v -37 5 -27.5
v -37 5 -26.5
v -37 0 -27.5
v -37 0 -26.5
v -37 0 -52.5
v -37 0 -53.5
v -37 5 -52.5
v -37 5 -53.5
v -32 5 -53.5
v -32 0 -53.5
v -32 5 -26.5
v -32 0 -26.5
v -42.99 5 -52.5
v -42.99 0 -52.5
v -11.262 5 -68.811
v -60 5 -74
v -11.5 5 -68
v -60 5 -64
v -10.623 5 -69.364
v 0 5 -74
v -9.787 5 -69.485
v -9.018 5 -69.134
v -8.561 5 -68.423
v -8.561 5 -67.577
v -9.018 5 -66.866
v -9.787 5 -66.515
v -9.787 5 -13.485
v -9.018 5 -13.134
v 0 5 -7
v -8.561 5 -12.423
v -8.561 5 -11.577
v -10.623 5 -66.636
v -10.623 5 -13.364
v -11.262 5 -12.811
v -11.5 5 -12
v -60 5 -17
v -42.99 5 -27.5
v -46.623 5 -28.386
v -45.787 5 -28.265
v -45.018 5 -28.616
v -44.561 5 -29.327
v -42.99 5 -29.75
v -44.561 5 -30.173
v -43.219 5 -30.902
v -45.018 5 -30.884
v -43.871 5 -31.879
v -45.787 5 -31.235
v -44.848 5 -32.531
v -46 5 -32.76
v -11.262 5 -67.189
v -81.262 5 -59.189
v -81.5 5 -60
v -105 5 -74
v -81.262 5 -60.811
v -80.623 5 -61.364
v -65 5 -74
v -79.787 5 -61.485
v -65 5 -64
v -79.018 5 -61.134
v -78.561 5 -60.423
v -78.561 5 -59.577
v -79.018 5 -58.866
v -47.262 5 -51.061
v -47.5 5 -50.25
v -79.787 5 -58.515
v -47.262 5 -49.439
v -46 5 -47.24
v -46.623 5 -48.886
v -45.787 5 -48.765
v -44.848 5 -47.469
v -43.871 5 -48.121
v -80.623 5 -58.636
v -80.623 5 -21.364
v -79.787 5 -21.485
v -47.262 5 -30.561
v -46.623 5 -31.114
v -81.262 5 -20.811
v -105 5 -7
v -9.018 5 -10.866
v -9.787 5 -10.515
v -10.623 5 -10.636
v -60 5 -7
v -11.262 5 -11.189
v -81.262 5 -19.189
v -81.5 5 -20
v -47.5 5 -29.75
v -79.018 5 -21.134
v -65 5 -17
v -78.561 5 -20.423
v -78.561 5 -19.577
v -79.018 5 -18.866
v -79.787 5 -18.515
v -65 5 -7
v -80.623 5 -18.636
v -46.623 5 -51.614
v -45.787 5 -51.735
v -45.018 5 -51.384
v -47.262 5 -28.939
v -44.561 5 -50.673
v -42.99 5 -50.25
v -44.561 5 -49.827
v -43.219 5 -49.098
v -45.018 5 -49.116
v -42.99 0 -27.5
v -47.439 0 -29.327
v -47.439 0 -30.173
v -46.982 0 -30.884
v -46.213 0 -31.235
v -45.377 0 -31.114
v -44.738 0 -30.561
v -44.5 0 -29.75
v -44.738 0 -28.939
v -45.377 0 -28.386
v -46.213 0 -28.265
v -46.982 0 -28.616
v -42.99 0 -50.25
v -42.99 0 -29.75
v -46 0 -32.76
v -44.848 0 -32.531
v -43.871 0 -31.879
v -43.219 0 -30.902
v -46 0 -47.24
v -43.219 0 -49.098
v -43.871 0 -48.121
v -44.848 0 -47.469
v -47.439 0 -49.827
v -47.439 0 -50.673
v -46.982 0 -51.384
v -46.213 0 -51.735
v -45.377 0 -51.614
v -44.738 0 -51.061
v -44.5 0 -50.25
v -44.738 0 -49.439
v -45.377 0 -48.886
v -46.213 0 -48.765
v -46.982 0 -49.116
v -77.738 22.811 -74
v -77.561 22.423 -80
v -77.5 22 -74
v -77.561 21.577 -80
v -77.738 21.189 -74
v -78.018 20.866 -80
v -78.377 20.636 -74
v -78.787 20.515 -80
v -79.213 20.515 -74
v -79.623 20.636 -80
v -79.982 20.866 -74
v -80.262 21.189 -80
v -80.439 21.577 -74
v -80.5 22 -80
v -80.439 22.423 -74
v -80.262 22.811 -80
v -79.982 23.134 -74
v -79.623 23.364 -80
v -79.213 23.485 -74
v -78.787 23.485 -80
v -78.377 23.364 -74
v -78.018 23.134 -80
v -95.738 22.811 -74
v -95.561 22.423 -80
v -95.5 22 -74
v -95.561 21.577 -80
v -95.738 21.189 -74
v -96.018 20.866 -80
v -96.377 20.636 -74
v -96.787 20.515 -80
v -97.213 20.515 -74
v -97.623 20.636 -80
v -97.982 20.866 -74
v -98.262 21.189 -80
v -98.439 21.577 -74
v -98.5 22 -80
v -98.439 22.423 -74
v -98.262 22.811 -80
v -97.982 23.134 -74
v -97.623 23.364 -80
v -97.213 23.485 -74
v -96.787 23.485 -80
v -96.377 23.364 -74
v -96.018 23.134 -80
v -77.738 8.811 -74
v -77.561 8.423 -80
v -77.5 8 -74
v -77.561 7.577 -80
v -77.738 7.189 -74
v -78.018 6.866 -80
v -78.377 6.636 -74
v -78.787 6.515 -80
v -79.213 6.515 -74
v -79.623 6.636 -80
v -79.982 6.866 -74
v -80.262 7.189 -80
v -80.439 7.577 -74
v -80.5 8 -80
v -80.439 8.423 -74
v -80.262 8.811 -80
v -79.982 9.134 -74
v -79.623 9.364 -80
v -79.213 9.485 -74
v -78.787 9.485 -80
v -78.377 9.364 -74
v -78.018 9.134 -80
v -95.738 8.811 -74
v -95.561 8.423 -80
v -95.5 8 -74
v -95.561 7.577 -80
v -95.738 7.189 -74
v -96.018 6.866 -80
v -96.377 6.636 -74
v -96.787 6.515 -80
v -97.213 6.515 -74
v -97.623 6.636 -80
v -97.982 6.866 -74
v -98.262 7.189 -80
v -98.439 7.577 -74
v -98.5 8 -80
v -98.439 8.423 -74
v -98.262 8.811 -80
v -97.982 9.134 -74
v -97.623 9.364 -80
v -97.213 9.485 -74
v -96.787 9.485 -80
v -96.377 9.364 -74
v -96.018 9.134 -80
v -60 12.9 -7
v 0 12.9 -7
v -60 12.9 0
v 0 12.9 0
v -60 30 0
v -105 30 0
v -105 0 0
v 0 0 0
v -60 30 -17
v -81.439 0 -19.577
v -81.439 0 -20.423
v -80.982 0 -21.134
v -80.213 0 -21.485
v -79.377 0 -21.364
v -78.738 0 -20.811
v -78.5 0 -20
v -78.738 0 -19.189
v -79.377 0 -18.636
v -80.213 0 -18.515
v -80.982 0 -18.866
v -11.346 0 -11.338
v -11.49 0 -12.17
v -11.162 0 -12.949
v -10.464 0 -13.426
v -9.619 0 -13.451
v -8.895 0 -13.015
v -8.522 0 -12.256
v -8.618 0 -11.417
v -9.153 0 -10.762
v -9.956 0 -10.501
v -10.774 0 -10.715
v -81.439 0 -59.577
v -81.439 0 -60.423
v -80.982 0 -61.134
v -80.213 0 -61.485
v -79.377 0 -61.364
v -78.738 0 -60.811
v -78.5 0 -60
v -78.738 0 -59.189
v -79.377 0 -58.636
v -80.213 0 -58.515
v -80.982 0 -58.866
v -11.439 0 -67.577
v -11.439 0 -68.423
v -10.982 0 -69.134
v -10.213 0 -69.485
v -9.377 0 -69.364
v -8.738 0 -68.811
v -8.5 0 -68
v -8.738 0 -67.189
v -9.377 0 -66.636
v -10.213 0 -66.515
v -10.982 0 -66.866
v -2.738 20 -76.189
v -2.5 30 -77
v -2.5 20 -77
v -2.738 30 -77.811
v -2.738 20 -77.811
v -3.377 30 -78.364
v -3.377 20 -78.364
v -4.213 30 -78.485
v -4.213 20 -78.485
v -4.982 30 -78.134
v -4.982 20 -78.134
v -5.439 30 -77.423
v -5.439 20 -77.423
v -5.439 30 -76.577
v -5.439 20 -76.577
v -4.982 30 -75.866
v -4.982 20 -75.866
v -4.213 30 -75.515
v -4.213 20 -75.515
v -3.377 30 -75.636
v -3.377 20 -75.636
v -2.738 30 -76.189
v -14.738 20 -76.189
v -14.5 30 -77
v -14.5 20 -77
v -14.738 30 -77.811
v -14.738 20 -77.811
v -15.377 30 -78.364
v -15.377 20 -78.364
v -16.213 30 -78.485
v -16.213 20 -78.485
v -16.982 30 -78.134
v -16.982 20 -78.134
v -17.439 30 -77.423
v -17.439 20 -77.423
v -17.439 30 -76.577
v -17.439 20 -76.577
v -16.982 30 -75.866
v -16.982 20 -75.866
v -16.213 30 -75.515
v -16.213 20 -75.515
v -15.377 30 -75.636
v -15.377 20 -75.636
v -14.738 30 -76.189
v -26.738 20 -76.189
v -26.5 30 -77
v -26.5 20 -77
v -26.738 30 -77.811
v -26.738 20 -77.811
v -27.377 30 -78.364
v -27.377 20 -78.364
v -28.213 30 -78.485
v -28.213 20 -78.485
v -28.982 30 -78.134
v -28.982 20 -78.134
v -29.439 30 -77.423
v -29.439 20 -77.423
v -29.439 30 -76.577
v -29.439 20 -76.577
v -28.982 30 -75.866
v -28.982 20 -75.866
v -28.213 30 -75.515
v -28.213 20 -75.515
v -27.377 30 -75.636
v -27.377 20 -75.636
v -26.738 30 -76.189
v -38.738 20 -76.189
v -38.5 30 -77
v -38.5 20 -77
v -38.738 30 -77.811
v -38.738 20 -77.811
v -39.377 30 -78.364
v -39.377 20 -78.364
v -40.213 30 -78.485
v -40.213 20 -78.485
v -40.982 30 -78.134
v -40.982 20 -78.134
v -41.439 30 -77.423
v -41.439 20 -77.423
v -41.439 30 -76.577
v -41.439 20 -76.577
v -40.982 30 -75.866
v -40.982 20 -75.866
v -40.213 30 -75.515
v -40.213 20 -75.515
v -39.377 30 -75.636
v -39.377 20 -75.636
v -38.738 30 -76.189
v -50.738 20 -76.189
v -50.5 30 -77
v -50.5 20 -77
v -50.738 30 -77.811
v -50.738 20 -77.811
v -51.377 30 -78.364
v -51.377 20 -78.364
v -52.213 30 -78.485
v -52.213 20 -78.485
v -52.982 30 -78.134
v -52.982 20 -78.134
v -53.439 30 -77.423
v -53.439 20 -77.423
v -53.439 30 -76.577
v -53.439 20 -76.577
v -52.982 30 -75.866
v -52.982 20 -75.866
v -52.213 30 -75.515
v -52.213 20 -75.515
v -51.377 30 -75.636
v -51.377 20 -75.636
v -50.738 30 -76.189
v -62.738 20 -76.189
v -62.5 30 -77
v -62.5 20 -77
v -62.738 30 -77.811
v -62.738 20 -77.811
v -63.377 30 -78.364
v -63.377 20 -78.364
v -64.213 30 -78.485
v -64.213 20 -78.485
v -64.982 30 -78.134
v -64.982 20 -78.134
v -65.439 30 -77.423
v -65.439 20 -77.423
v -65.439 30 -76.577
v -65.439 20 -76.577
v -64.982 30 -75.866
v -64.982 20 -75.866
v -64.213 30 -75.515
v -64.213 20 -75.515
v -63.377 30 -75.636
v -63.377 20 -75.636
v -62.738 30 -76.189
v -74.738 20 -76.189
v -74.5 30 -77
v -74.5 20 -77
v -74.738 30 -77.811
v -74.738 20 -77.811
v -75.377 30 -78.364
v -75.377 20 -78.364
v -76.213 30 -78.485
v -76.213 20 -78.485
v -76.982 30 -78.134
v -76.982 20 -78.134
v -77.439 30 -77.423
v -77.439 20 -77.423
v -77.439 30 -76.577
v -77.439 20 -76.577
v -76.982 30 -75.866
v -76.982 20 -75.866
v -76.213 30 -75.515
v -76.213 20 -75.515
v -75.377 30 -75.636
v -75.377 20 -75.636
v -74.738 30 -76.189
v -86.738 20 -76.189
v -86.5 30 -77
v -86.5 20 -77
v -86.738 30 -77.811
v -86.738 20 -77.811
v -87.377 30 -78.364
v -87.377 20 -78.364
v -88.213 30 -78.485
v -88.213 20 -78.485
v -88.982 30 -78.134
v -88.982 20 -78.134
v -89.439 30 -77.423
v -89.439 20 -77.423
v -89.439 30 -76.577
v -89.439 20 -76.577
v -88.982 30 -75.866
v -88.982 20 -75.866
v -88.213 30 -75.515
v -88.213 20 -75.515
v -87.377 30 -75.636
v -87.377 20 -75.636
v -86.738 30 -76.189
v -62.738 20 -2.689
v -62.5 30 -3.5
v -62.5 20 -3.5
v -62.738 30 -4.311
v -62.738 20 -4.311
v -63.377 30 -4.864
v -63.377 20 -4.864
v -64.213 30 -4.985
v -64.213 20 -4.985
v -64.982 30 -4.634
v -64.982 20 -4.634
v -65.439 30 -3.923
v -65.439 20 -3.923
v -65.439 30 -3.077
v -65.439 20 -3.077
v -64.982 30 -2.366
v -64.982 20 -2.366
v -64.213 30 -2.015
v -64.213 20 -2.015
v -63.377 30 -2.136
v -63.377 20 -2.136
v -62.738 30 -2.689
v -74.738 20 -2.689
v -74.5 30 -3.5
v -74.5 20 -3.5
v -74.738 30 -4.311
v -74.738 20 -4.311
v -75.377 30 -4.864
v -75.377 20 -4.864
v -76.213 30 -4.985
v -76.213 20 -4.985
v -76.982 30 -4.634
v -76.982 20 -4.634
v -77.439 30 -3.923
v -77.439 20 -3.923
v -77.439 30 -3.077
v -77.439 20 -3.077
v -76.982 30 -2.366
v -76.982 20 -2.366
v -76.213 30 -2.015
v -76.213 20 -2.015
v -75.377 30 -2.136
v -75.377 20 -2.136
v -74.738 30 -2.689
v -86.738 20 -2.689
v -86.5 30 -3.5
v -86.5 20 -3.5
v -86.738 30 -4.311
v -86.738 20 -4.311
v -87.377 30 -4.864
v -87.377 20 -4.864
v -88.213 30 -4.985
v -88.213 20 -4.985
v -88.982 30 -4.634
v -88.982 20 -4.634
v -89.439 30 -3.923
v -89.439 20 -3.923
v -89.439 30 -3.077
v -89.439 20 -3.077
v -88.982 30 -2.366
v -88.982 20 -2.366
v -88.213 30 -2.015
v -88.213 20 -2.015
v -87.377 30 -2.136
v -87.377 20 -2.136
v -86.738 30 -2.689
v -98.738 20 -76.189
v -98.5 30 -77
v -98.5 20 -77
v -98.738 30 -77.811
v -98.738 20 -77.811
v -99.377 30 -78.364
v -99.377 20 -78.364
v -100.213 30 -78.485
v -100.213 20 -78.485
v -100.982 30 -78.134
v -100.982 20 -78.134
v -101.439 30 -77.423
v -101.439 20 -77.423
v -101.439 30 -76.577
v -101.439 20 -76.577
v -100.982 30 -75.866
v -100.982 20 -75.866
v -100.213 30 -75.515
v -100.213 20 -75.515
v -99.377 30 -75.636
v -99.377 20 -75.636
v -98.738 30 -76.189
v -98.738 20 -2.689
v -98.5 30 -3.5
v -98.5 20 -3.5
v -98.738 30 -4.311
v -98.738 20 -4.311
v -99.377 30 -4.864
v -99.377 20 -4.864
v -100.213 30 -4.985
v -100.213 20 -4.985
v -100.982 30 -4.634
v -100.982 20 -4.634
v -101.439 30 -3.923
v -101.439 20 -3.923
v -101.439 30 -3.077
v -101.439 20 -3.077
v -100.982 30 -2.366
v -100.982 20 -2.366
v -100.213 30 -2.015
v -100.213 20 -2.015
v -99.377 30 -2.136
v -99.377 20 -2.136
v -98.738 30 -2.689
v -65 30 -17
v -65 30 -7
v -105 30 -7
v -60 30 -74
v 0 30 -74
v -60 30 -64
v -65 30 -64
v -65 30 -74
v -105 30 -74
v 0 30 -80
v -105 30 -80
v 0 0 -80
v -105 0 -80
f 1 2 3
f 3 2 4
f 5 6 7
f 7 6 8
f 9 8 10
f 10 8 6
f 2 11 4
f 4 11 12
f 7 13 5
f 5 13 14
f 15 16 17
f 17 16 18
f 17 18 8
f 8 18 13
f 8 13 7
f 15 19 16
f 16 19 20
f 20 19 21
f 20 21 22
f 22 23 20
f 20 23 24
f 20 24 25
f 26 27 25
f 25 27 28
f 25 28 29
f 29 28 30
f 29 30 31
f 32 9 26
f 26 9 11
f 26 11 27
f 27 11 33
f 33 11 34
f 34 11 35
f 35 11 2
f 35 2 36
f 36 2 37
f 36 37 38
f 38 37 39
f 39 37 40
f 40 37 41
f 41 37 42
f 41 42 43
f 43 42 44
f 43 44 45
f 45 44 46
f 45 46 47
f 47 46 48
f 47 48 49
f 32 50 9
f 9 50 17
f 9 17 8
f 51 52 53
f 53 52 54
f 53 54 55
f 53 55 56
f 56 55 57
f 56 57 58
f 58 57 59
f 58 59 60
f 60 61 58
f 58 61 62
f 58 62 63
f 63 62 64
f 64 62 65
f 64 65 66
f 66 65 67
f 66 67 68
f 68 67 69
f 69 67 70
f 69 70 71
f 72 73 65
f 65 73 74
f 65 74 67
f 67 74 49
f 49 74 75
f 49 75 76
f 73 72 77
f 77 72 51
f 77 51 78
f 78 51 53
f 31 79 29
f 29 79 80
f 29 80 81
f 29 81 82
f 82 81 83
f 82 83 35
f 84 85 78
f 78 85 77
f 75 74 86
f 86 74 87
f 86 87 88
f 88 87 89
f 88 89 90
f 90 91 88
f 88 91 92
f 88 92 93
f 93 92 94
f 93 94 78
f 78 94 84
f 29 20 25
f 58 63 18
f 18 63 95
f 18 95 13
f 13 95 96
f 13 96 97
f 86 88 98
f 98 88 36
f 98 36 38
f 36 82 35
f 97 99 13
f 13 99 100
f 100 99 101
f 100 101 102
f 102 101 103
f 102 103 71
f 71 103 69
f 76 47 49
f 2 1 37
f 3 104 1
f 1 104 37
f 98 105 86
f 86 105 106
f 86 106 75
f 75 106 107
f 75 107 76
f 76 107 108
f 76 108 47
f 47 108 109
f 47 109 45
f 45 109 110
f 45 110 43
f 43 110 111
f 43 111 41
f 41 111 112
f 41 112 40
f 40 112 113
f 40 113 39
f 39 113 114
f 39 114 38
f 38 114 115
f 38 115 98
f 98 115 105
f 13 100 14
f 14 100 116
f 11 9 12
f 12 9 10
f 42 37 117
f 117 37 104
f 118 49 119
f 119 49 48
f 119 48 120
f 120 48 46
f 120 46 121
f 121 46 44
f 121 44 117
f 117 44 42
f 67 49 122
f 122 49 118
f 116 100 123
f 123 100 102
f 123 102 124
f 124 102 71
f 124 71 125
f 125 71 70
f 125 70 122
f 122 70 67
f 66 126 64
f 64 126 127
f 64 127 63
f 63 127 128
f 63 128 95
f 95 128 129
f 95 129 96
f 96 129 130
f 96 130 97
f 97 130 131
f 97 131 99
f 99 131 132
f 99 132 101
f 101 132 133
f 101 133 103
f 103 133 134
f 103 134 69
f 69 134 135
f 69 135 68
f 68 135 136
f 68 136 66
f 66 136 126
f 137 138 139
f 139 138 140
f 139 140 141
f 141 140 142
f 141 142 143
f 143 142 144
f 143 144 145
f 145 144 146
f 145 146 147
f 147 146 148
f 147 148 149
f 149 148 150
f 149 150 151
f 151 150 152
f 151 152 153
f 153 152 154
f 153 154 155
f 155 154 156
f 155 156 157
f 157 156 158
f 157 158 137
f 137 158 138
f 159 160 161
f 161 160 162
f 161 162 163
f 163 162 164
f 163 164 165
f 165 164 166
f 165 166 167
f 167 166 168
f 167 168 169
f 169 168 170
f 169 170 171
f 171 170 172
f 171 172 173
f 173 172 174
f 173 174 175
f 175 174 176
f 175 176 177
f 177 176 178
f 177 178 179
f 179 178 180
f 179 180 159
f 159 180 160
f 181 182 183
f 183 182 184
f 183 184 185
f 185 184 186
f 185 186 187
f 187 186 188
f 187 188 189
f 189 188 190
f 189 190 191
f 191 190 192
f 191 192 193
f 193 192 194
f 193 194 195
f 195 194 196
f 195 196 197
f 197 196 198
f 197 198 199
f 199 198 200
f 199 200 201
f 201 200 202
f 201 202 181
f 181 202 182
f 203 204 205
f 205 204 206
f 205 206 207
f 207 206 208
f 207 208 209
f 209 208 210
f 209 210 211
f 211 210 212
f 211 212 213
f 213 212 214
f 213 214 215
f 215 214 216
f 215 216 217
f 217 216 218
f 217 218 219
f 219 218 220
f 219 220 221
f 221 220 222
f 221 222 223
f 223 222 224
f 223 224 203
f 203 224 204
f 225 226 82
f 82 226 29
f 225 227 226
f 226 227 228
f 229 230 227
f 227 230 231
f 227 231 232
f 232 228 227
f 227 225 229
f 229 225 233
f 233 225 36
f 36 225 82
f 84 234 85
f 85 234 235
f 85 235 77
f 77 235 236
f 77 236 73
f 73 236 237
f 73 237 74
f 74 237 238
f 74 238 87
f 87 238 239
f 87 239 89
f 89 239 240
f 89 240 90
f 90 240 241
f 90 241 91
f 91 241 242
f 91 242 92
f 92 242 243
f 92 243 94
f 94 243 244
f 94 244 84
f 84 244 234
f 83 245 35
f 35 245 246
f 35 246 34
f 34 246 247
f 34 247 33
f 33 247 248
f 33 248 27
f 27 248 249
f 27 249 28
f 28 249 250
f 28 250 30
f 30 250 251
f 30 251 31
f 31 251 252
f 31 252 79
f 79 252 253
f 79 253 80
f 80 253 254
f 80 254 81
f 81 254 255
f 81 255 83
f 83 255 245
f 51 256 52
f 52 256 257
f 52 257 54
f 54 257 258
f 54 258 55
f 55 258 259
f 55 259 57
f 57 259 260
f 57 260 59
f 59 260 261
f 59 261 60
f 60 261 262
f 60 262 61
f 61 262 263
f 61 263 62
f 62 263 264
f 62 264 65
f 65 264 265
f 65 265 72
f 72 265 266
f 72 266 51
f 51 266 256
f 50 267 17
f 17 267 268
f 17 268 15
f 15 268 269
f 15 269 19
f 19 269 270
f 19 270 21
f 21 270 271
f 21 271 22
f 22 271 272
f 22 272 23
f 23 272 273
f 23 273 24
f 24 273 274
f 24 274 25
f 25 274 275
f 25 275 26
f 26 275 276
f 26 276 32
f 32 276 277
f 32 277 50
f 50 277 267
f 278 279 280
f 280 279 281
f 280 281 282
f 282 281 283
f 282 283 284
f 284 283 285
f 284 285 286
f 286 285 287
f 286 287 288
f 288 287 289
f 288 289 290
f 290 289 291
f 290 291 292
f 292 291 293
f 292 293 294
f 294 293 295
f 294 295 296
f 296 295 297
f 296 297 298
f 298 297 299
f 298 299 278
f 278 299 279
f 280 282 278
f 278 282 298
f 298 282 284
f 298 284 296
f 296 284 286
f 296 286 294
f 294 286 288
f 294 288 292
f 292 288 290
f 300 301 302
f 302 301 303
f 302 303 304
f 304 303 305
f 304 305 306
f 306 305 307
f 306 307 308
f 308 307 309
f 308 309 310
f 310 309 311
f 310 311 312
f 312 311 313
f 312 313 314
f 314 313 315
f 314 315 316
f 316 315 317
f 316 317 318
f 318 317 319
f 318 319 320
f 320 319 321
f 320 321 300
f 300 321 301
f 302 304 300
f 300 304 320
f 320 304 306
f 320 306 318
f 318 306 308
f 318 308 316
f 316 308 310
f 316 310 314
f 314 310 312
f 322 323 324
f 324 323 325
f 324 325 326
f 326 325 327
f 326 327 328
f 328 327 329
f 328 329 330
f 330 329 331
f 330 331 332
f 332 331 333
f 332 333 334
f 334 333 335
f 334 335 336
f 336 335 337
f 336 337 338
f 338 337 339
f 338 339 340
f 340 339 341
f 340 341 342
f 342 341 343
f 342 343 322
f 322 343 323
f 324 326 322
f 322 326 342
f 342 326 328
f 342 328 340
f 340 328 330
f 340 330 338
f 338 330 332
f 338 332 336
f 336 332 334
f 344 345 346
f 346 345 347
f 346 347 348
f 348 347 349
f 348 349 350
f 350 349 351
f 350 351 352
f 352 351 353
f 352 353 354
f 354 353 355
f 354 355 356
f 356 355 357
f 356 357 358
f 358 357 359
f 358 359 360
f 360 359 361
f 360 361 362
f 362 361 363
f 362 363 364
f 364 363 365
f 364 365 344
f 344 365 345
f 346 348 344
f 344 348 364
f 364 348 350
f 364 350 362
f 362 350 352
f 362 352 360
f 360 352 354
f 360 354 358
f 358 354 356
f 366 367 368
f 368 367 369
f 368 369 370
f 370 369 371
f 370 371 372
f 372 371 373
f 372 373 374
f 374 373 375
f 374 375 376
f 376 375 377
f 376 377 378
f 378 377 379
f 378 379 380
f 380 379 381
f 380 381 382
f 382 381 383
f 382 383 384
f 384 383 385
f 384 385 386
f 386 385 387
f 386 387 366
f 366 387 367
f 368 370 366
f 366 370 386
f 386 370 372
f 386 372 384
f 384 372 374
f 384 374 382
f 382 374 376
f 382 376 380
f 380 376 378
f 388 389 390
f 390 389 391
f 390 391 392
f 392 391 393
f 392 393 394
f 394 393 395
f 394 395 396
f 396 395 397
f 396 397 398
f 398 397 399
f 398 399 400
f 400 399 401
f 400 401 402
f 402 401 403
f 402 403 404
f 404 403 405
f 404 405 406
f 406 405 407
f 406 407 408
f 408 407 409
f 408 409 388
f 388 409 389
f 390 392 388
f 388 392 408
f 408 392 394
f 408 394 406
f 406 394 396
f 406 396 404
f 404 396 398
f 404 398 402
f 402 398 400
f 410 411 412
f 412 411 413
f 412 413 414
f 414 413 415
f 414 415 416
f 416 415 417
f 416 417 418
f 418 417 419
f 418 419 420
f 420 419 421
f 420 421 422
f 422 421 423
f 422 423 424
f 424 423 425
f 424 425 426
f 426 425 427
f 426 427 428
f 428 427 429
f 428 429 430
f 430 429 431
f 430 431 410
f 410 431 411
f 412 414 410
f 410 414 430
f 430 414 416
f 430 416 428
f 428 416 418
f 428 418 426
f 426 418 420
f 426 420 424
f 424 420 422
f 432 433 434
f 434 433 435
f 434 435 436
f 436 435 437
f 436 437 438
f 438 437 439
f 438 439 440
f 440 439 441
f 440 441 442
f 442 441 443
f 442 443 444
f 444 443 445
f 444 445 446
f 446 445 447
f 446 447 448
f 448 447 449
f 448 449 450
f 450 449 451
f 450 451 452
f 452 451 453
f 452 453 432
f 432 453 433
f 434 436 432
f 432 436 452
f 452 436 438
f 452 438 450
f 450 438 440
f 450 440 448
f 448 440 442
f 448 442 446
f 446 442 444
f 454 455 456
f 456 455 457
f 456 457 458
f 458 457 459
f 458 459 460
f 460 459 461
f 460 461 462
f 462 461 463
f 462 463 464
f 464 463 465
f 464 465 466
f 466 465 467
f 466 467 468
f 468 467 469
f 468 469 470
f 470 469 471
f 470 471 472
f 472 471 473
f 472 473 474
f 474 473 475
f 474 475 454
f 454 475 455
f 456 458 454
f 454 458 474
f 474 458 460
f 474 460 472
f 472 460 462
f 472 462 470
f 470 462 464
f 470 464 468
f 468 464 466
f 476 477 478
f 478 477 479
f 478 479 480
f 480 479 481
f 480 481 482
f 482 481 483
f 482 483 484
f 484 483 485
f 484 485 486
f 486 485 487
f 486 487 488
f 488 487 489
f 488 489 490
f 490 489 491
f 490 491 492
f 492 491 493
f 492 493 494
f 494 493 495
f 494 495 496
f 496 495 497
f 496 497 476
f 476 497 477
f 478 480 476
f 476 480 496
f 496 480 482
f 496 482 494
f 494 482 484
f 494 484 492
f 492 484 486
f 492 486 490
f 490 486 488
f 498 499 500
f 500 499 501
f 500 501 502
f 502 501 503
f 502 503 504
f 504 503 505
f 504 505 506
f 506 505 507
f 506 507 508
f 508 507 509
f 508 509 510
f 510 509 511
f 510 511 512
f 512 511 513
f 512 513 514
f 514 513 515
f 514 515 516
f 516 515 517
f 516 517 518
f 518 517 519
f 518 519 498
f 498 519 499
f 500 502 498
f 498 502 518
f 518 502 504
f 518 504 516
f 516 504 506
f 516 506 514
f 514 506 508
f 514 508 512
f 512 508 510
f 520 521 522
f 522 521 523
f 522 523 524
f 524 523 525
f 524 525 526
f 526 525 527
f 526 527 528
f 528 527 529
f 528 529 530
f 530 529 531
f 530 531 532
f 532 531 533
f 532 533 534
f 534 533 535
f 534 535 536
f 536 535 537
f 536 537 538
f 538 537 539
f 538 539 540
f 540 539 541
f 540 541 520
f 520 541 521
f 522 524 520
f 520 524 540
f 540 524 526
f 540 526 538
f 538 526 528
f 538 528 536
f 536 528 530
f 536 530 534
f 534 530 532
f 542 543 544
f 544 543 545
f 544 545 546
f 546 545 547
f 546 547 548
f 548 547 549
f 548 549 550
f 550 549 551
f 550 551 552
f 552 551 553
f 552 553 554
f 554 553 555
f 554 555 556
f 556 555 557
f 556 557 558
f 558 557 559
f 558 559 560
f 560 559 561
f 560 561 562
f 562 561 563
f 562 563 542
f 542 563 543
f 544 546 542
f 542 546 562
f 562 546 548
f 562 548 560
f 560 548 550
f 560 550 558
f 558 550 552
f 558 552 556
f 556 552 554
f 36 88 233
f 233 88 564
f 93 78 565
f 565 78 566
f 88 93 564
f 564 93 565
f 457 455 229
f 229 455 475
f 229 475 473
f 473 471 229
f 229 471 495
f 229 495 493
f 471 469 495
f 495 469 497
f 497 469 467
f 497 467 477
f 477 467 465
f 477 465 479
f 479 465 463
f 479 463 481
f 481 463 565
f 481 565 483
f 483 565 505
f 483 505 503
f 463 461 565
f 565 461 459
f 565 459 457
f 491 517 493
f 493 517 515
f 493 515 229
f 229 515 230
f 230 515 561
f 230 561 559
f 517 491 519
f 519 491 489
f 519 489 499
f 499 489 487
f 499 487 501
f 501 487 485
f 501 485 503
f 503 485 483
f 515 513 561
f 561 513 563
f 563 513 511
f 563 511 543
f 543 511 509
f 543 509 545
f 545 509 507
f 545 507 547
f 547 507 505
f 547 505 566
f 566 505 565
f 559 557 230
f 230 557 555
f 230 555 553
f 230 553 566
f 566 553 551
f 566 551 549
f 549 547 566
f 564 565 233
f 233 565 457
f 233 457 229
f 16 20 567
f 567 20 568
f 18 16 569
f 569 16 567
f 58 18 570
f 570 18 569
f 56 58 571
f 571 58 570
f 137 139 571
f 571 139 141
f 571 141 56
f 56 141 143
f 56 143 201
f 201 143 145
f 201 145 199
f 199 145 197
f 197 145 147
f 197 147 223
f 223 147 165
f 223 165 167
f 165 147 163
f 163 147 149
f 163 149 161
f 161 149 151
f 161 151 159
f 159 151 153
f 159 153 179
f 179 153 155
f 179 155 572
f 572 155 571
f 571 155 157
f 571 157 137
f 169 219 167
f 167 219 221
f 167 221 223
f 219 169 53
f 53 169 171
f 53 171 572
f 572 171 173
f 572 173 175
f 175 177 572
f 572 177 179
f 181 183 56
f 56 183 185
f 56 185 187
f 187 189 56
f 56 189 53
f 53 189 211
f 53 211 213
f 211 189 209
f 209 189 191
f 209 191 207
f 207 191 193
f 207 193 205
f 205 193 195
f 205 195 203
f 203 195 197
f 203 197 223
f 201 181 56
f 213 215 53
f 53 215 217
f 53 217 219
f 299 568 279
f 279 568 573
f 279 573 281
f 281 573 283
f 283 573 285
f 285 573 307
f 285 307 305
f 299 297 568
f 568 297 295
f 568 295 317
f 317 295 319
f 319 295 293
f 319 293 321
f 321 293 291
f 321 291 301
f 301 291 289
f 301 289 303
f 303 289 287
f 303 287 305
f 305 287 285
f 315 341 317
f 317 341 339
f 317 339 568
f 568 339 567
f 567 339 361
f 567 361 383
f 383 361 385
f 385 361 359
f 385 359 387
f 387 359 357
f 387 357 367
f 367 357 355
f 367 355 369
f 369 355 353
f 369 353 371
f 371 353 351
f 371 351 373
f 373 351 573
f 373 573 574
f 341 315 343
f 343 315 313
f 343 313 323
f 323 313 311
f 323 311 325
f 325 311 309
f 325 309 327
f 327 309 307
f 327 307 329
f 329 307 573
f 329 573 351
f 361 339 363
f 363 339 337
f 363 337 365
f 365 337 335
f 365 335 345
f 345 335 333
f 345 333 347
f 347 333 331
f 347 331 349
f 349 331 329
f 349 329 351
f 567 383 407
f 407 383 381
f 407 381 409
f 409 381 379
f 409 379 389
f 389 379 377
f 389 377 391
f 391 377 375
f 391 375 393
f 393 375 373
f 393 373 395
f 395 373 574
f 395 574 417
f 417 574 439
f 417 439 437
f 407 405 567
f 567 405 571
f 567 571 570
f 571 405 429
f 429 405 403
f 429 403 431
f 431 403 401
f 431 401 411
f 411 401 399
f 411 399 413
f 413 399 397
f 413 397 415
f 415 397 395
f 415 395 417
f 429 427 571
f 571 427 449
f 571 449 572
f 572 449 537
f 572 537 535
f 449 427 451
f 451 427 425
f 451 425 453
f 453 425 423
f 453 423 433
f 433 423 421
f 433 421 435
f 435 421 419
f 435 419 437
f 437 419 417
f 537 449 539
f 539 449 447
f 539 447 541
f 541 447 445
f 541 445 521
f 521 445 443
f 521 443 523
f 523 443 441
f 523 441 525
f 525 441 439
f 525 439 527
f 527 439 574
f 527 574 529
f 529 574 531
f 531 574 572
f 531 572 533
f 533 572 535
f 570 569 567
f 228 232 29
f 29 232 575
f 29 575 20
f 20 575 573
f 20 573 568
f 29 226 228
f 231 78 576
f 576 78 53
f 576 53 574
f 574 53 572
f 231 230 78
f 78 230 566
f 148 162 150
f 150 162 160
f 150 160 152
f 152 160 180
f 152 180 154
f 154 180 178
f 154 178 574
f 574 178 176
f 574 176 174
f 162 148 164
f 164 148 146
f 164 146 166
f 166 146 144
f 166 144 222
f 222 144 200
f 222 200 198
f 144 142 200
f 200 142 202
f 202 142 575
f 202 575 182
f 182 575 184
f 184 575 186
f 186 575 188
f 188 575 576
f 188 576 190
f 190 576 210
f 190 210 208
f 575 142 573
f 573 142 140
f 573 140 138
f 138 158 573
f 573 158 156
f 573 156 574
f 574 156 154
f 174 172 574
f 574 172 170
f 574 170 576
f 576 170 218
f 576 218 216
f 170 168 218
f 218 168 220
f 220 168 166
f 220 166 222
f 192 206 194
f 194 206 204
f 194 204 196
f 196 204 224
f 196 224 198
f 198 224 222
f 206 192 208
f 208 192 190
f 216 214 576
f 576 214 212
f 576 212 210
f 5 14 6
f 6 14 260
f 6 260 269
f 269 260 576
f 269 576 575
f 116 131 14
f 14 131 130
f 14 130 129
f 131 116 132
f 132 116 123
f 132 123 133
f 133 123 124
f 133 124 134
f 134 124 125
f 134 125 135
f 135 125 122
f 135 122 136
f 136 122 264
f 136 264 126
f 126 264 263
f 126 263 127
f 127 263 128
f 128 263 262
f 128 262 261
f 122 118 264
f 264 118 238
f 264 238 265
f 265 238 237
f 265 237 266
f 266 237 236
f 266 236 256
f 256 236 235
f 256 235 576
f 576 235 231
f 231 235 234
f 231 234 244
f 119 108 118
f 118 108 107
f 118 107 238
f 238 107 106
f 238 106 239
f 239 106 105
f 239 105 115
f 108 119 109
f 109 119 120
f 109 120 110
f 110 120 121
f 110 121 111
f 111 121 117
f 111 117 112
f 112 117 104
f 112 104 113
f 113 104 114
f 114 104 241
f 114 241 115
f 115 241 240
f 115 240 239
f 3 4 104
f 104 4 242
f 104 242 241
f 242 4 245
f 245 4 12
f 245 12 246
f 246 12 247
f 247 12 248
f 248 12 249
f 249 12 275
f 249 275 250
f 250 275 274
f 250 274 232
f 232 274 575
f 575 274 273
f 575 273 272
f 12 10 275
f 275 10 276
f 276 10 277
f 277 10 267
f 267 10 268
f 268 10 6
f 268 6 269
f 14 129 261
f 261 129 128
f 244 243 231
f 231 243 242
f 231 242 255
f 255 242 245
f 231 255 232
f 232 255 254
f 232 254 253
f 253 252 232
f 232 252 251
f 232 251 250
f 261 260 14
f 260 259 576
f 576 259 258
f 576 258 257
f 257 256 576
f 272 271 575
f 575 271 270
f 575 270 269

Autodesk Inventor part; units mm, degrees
ref_plane "YZ Plane" through (0, 0, 0) normal (1, 0, 0) x (0, 1, 0)
ref_plane "XZ Plane" through (0, 0, 0) normal (0, 1, 0) x (-1, 0, 0)
ref_plane "XY Plane" through (0, 0, 0) normal (0, 0, 1) x (1, 0, 0)
sketch "Sketch1" plane through (0, 0, 0) normal (0, 1, 0) x (-1, 0, 0)
  line L0 (0, 0) -> (105, 0)
  line L1 (105, 0) -> (105, -80)
  line L2 (105, -80) -> (0, -80)
  line L3 (0, -80) -> (0, 0)
  dimension "d0" = 105
  dimension "d1" = 80
extrude "Extrusion1" add sketch "Sketch1" along normal blind 5
sketch "Sketch2" plane through (0, 5, 0) normal (0, 1, 0) x (1, 0, 0)
  line L0 (0, 0) -> (0, 80) projected
  line L1 (-105, 80) -> (-105, 0) projected
  line L2 (0, 74) -> (-105, 74)
  line L3 (-105, 74) -> (-105, 7)
  line L4 (-105, 7) -> (0, 7)
  line L5 (0, 7) -> (0, 74)
  line L6 (-105, 0) -> (0, 0) projected
  line L7 (0, 80) -> (-105, 80) projected
  line L8 (-60, 7) -> (-60, 0)
  line L9 (-60, 7) -> (-65, 7)
  line L10 (-65, 7) -> (-65, 74)
  line L11 (-65, 74) -> (-60, 74)
  line L12 (-60, 74) -> (-60, 7)
  line L13 (-60, 64) -> (-65, 64)
  line L14 (-65, 64) -> (-65, 17)
  line L15 (-65, 17) -> (-60, 17)
  line L16 (-60, 17) -> (-60, 64)
  line L17 (0, 80) -> (-105, 80) projected
  line L18 (-105, 80) -> (-105, 0) projected
  line L19 (-105, 0) -> (0, 0) projected
  line L20 (0, 0) -> (0, 80) projected
  point P0 (-62.5, 74)
  point P1 (-62.5, 64)
  point P2 (-62.5, 7)
  point P3 (-62.5, 17)
  dimension "d4" = 7
  dimension "d5" = 6
  dimension "d7" = 45
  dimension "d8" = 5
  dimension "d9" = 10
  dimension "d10" = 10
extrude "Extrusion2" add sketch "Sketch2" along normal blind 25 contours L6 L1 L4 L8 | L2 L1 L7 L0 | L4 L10 L15 L12 | L12 L13 L10 L2
sketch "Sketch3" plane through (0, 30, 0) normal (0, 1, 0) x (1, 0, 0)
  line L0 (-100, 3.5) -> (-5, 3.5)
  line L1 (-5, 3.5) -> (-5, 77)
  line L2 (-5, 77) -> (-100, 77)
  line L3 (-100, 77) -> (-100, 3.5)
  line L4 (0, 80) -> (-105, 80) projected
  line L5 (-105, 0) -> (-60, 0) projected
  line L6 (-105, 74) -> (-105, 7) projected
  line L7 (0, 0) -> (0, 74) projected
  circle A0 centre (-100, 3.5) radius 1.5
  circle A1 centre (-100, 77) radius 1.5
  dimension "d13" = 3
  dimension "d14" = 3.5
  dimension "d15" = 5
  dimension "d16" = 5
  dimension "d17" = 3
  dimension "d20" = 3
extrude "Extrusion3" cut sketch "Sketch3" against normal blind 10 contours L3 A0 L0 | L0 A0 L3
extrude "Extrusion4" cut sketch "Sketch3" against normal blind 10 contours A1 L2 L3 | L3 L2 A1
pattern_linear "Rectangular Pattern2" count 4 spacing 12 along (1, 0, 0) of "Extrusion3"
pattern_linear "Rectangular Pattern3" count 9 spacing 12 along (1, 0, 0) of "Extrusion4"
sketch "Sketch4" plane through (0, 0, 0) normal (0, -1, 0) x (1, 0, 0)
  line L0 (-10, -12) -> (-80, -12)
  line L1 (-80, -12) -> (-80, -68)
  line L2 (-80, -68) -> (-10, -68)
  line L3 (-10, -68) -> (-10, -12)
  line L4 (0, -80) -> (-105, -80) projected
  line L5 (0, 0) -> (0, -80) projected
  line L6 (-80, -60) -> (-10, -68)
  line L7 (-10, -12) -> (-80, -20)
  circle A0 centre (-10, -12) radius 1.5
  circle A1 centre (-10, -68) radius 1.5
  circle A2 centre (-80, -20) radius 1.5
  circle A3 centre (-80, -60) radius 1.5
  point P0 (-80, -40)
  point P1 (-45, -68)
  point P2 (-11.5, -12)
  point P3 (-11.4903, -12.1703)
  dimension "d32" = 70
  dimension "d33" = 40
  dimension "d34" = 45
  dimension "d35" = 56
  dimension "d36" = 40
  dimension "d37" = 20
  dimension "d38" = 3
  dimension "d39" = 3
  dimension "d40" = 3
  dimension "d41" = 3
extrude "Extrusion5" cut sketch "Sketch4" against normal up to next contours L7 A0 L0 | L0 A0 L3 | L3 A0 L7 | A1 L2 L3 | L3 L6 A1 | A2 L1 L7 | L7 L1 A2 | L1 A2 | L2 A1 L6 | A3 L1 L6 | L6 L1 A3 | L1 A3
sketch "Sketch5" plane through (0, 5, 0) normal (0, 1, 0) x (1, 0, 0)
  line L0 (-105, 0) -> (0, 0) projected
  line L1 (0, 0) -> (-61.099, 0)
  line L2 (-61.099, 0) -> (-61.099, 7)
  line L3 (-61.099, 7) -> (0, 7)
  line L4 (0, 7) -> (0, 0)
  point P0 (-105, 7)
extrude "Extrusion6" add sketch "Sketch5" along normal blind 7.9
sketch "Sketch6" plane through (0, 0, -80) normal (0, 0, -1) x (-1, 0, 0)
  line L0 (97, 22) -> (79, 22)
  line L1 (79, 22) -> (79, 8)
  line L2 (79, 8) -> (97, 8)
  line L3 (97, 8) -> (97, 22)
  line L4 (0, 0) -> (105, 0) projected
  line L5 (0, 0) -> (0, 30) projected
  circle A0 centre (97, 8) radius 1.5
  circle A1 centre (97, 22) radius 1.5
  circle A2 centre (79, 22) radius 1.5
  circle A3 centre (79, 8) radius 1.5
  line L6 (105, 0) -> (105, 30) projected
  point P0 (79, 15)
  point P1 (105, 15)
  dimension "d46" = 15
  dimension "d47" = 14
  dimension "d48" = 18
  dimension "d50" = 3
  dimension "d51" = 3
  dimension "d52" = 3
  dimension "d53" = 3
  dimension "d56" = 8
extrude "Extrusion7" cut sketch "Sketch6" against normal up to surface (6 mm away) contours A2 L1 L0 | L0 L1 A2 | A1 L3 L0 | L0 L3 A1 | A3 L2 L1 | L1 L2 A3 | A0 L2 L3 | L3 L2 A0
sketch "Sketch7" plane through (0, 0, 0) normal (0, -1, 0) x (1, 0, 0)
  line L0 (-32, -27.5) -> (-48, -27.5)
  line L1 (-48, -27.5) -> (-48, -52.5)
  line L2 (-48, -52.5) -> (-32, -52.5)
  line L3 (-32, -52.5) -> (-32, -27.5)
  line L4 (0, 0) -> (0, -80) projected
  line L5 (-105, 0) -> (0, 0) projected
  line L6 (-46, -27.5) -> (-46, -52.5)
  line L7 (-44, -27.5) -> (-44, -52.5)
  circle A0 centre (-46, -29.75) radius 1.5
  circle A1 centre (-46, -50.25) radius 1.5
  circle A2 centre (-46, -50.25) radius 3.0104
  circle A3 centre (-46, -29.75) radius 3.0104
  line L8 (-42.9896, -50.25) -> (-42.9896, -52.5)
  line L9 (-42.9896, -29.75) -> (-42.9896, -27.5)
  point P0 (-40, -52.5)
  point P1 (-32, -40)
  point P2 (-46, -40)
  point P3 (-48, -40)
  point P4 (-46, -32.7604)
  point P5 (-46, -47.2396)
  dimension "d57" = 40
  dimension "d58" = 40
  dimension "d59" = 25
  dimension "d60" = 16
  dimension "d62" = 2
  dimension "d63" = 4
  dimension "d64" = 3
  dimension "d65" = 2.25
  dimension "d66" = 2.25
  dimension "d67" = 3
extrude "Extrusion8" cut sketch "Sketch7" against normal up to surface (5 mm away) contours L3 L2 L8 A2 L7 A3 L9 L0 | L7 A2 L6 A3 | A0 L6 | L6 A0 | A1 L6 | L6 A1
sketch "Sketch8" plane through (0, 0, 0) normal (0, -1, 0) x (1, 0, 0)
  line L0 (-32, -53.5) -> (-37, -53.5)
  line L1 (-37, -53.5) -> (-37, -26.5)
  line L2 (-37, -26.5) -> (-32, -26.5)
  line L3 (-32, -26.5) -> (-32, -53.5)
  line L4 (-32, -52.5) -> (-42.9896, -52.5) projected
  line L5 (-42.9896, -27.5) -> (-32, -27.5) projected
  line L6 (-32, -27.5) -> (-32, -52.5) projected
  point P0 (0, 0)
  point P1 (-34.5, -53.5)
  dimension "d70" = 1
  dimension "d71" = 1
  dimension "d72" = 5
extrude "Extrusion9" cut sketch "Sketch8" against normal up to surface (5 mm away)
equation "\"d54\" = d52"
properties part number "sensor_zig"
